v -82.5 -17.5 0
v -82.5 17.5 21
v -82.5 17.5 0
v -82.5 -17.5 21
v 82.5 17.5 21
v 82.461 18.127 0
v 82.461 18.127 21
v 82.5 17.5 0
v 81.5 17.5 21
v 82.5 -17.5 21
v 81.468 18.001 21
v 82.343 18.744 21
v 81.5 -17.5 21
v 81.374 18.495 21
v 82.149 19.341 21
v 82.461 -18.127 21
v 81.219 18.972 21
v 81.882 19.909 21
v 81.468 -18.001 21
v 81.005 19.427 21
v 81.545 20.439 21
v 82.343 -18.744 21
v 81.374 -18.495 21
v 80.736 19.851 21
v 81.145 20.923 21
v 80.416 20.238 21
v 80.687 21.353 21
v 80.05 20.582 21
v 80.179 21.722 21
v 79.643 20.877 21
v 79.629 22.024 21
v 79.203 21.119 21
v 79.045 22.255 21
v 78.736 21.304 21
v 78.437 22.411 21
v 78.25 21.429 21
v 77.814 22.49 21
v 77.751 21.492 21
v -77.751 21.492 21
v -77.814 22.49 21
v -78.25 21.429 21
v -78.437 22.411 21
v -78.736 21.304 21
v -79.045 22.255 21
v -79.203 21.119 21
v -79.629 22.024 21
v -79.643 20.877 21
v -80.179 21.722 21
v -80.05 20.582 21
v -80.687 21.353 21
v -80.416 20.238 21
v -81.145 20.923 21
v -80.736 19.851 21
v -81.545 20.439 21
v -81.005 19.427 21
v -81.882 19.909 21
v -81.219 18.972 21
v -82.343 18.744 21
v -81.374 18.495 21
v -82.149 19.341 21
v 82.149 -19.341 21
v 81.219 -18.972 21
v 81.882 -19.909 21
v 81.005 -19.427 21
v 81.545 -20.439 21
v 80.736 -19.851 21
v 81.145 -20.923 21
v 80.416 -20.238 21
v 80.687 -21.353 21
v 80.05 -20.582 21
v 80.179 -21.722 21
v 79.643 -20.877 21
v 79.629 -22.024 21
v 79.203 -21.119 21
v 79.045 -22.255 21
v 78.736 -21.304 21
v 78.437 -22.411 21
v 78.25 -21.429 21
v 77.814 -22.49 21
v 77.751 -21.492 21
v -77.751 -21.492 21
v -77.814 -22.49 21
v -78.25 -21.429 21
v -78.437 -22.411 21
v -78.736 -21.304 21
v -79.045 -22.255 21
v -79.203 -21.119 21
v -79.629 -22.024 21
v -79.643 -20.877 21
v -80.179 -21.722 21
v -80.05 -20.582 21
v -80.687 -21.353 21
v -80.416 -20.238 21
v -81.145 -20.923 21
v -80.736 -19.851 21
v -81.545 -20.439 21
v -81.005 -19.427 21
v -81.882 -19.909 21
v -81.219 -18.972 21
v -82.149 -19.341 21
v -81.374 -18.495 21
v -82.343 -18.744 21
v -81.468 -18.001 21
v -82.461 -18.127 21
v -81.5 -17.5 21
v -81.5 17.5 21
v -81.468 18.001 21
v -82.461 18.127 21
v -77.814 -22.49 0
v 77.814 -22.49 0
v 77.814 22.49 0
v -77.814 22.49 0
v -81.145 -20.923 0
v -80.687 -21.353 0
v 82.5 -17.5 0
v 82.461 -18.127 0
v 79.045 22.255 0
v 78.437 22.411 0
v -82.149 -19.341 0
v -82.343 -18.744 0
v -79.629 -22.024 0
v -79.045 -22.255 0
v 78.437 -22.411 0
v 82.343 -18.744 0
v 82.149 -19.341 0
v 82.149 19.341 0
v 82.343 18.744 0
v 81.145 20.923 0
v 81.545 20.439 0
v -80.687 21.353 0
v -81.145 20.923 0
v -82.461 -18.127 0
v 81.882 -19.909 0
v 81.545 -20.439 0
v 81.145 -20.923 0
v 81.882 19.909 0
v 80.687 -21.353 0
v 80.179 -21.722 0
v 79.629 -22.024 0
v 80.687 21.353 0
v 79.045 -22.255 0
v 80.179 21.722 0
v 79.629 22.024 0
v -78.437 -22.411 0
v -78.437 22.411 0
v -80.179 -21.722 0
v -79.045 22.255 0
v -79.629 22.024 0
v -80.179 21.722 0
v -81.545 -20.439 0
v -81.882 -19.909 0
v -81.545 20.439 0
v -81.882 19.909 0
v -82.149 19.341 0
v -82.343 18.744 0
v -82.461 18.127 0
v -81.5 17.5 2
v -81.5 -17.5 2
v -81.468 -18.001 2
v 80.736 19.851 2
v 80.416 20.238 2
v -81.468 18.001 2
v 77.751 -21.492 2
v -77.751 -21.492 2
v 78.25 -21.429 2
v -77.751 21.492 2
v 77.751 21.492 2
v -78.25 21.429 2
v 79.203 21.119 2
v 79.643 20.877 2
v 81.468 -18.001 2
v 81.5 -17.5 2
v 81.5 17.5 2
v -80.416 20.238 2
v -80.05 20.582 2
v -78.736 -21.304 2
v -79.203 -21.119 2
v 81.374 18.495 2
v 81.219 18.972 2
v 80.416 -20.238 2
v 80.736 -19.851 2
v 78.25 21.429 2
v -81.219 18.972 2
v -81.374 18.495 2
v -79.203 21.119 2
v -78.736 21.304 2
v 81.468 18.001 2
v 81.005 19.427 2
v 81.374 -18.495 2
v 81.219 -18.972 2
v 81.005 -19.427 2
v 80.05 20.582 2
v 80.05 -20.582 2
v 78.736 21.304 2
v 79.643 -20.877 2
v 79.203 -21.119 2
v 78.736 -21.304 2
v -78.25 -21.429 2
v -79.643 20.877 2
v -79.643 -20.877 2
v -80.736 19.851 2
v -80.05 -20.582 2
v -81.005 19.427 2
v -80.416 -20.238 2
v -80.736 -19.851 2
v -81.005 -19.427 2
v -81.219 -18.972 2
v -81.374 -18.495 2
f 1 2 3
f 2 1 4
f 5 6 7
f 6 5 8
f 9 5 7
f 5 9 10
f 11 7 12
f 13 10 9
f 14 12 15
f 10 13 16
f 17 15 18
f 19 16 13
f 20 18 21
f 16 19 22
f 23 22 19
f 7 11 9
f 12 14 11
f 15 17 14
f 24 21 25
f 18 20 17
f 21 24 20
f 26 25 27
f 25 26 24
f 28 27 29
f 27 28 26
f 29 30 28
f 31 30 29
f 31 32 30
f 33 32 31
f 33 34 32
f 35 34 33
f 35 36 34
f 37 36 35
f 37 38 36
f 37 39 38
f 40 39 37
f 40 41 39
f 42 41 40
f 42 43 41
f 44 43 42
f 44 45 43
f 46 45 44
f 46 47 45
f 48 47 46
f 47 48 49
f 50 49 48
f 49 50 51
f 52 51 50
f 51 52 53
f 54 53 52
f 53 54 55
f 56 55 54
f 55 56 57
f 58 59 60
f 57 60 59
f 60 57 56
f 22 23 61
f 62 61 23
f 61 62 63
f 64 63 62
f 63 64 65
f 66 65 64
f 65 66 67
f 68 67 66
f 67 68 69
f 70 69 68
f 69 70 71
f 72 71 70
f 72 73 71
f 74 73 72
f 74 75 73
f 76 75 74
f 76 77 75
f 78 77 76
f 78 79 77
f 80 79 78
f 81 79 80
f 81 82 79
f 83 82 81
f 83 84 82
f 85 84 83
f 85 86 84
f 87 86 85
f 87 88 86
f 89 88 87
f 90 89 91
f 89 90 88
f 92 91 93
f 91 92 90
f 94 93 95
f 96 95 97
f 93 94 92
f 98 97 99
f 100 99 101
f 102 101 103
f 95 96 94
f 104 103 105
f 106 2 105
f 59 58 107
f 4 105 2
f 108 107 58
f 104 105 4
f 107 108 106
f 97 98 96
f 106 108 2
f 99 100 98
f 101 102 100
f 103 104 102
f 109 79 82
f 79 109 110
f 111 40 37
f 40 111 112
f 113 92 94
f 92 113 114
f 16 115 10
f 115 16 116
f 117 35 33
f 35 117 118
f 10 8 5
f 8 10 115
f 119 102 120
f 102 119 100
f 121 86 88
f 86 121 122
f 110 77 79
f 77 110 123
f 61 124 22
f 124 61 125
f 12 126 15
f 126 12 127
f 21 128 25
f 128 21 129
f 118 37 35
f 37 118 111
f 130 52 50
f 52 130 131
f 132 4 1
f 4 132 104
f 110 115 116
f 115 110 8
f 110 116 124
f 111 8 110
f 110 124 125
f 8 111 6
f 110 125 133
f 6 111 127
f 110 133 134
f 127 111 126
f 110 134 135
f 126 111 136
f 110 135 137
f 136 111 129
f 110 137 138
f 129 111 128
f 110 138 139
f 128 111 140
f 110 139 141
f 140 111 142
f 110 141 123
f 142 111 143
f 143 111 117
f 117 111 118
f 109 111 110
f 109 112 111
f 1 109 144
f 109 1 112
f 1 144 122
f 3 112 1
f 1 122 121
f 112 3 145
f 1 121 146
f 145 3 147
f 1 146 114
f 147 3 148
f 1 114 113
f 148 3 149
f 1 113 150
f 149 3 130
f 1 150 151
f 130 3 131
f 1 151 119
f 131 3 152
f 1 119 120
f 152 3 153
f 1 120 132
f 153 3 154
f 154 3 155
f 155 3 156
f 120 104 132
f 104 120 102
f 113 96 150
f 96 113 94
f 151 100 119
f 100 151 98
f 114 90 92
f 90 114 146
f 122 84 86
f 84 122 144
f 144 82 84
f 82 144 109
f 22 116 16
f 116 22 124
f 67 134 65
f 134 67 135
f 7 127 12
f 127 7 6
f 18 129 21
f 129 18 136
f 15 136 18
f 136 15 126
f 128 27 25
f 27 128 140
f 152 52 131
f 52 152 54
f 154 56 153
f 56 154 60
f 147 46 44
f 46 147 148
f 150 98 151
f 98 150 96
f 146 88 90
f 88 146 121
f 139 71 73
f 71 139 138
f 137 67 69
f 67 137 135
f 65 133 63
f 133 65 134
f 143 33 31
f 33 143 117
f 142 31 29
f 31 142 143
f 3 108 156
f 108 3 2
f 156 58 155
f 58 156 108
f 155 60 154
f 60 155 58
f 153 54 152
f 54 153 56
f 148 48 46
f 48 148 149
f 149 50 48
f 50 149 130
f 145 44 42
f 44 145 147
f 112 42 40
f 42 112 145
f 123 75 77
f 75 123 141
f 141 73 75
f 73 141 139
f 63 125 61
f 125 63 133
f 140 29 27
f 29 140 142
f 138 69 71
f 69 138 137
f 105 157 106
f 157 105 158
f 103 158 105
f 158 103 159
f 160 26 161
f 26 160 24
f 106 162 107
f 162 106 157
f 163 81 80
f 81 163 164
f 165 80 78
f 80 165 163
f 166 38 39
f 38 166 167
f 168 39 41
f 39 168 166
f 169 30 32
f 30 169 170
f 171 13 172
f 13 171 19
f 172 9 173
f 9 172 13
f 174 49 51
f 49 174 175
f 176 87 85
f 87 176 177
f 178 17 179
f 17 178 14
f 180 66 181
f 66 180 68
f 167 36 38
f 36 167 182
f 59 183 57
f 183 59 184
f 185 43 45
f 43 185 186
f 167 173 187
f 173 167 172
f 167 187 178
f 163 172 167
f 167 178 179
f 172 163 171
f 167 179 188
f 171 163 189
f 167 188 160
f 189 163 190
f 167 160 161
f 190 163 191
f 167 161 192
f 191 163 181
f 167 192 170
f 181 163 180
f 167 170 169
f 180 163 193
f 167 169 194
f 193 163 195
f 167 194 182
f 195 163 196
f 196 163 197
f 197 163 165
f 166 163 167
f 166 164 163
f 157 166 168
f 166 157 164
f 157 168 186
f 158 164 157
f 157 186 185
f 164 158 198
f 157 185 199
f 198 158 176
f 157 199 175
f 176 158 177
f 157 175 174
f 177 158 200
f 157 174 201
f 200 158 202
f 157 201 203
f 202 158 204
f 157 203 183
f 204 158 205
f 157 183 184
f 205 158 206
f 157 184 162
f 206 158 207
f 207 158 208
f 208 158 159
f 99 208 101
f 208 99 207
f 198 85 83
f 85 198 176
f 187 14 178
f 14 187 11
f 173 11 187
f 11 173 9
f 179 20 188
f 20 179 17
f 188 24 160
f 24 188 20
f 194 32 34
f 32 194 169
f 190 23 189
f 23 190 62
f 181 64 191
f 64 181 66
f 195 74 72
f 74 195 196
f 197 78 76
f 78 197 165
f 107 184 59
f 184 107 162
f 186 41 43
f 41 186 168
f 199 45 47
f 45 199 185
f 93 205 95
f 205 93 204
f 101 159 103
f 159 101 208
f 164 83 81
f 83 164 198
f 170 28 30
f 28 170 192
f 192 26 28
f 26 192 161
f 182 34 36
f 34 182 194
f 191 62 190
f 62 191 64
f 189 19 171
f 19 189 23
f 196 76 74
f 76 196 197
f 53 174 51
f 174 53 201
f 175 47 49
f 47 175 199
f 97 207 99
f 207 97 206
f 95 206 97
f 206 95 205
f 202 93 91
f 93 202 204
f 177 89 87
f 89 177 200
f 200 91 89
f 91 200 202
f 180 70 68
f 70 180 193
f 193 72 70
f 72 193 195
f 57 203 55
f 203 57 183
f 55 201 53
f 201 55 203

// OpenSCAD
$fn = 50;


difference() {
	union() {
		hull() {
			translate(v = [-77.5000000000, 17.5000000000, 0]) {
				cylinder(h = 21, r = 5);
			}
			translate(v = [77.5000000000, 17.5000000000, 0]) {
				cylinder(h = 21, r = 5);
			}
			translate(v = [-77.5000000000, -17.5000000000, 0]) {
				cylinder(h = 21, r = 5);
			}
			translate(v = [77.5000000000, -17.5000000000, 0]) {
				cylinder(h = 21, r = 5);
			}
		}
	}
	union() {
		translate(v = [0, 0, 2]) {
			hull() {
				translate(v = [-77.5000000000, 17.5000000000, 0]) {
					cylinder(h = 19, r = 4);
				}
				translate(v = [77.5000000000, 17.5000000000, 0]) {
					cylinder(h = 19, r = 4);
				}
				translate(v = [-77.5000000000, -17.5000000000, 0]) {
					cylinder(h = 19, r = 4);
				}
				translate(v = [77.5000000000, -17.5000000000, 0]) {
					cylinder(h = 19, r = 4);
				}
			}
		}
	}
}
